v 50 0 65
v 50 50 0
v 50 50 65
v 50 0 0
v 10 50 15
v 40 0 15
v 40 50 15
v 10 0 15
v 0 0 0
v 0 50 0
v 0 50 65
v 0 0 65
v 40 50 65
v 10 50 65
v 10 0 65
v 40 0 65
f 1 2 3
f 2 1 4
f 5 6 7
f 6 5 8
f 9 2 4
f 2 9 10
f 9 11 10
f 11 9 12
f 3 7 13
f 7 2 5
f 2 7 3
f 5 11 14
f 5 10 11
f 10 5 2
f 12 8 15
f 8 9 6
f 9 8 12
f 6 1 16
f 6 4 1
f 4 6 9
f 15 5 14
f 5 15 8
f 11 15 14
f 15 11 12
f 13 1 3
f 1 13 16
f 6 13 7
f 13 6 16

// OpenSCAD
// Adjusted Dimensions
base_length = 50;  // Length of the base block
base_width = 50;   // Width of the base block
base_height = 15;  // Height of the base block remains the same

cutout_length = 40;  // Length of the central cutout remains the same
cutout_width = 40;   // Increased width of the central cutout to match the original model
cutout_height = 15;  // Height of the central cutout remains the same

arm_width = 10;      // Width of the side arms remains the same
arm_height = 50;     // Increased height of the side arms to match the original model

// Base block
module base_block() {
    cube([base_length, base_width, base_height]);
}

// Central cutout
module central_cutout() {
    translate([(base_length - cutout_length) / 2, (base_width - cutout_width) / 2, 0])
        cube([cutout_length, cutout_width, cutout_height]);
}

// Side arms
module side_arm() {
    cube([arm_width, base_width, arm_height]);
}

// Full model
module flexible_coupling() {
    // Layer 1: Base block
    base_block();

    // Layer 2: Central cutout
    difference() {
        base_block();
        central_cutout();
    }

    // Layer 3: Side arms
    translate([0, 0, base_height])
        side_arm();
    translate([base_length - arm_width, 0, base_height])
        side_arm();
}

// Render the model
flexible_coupling();
